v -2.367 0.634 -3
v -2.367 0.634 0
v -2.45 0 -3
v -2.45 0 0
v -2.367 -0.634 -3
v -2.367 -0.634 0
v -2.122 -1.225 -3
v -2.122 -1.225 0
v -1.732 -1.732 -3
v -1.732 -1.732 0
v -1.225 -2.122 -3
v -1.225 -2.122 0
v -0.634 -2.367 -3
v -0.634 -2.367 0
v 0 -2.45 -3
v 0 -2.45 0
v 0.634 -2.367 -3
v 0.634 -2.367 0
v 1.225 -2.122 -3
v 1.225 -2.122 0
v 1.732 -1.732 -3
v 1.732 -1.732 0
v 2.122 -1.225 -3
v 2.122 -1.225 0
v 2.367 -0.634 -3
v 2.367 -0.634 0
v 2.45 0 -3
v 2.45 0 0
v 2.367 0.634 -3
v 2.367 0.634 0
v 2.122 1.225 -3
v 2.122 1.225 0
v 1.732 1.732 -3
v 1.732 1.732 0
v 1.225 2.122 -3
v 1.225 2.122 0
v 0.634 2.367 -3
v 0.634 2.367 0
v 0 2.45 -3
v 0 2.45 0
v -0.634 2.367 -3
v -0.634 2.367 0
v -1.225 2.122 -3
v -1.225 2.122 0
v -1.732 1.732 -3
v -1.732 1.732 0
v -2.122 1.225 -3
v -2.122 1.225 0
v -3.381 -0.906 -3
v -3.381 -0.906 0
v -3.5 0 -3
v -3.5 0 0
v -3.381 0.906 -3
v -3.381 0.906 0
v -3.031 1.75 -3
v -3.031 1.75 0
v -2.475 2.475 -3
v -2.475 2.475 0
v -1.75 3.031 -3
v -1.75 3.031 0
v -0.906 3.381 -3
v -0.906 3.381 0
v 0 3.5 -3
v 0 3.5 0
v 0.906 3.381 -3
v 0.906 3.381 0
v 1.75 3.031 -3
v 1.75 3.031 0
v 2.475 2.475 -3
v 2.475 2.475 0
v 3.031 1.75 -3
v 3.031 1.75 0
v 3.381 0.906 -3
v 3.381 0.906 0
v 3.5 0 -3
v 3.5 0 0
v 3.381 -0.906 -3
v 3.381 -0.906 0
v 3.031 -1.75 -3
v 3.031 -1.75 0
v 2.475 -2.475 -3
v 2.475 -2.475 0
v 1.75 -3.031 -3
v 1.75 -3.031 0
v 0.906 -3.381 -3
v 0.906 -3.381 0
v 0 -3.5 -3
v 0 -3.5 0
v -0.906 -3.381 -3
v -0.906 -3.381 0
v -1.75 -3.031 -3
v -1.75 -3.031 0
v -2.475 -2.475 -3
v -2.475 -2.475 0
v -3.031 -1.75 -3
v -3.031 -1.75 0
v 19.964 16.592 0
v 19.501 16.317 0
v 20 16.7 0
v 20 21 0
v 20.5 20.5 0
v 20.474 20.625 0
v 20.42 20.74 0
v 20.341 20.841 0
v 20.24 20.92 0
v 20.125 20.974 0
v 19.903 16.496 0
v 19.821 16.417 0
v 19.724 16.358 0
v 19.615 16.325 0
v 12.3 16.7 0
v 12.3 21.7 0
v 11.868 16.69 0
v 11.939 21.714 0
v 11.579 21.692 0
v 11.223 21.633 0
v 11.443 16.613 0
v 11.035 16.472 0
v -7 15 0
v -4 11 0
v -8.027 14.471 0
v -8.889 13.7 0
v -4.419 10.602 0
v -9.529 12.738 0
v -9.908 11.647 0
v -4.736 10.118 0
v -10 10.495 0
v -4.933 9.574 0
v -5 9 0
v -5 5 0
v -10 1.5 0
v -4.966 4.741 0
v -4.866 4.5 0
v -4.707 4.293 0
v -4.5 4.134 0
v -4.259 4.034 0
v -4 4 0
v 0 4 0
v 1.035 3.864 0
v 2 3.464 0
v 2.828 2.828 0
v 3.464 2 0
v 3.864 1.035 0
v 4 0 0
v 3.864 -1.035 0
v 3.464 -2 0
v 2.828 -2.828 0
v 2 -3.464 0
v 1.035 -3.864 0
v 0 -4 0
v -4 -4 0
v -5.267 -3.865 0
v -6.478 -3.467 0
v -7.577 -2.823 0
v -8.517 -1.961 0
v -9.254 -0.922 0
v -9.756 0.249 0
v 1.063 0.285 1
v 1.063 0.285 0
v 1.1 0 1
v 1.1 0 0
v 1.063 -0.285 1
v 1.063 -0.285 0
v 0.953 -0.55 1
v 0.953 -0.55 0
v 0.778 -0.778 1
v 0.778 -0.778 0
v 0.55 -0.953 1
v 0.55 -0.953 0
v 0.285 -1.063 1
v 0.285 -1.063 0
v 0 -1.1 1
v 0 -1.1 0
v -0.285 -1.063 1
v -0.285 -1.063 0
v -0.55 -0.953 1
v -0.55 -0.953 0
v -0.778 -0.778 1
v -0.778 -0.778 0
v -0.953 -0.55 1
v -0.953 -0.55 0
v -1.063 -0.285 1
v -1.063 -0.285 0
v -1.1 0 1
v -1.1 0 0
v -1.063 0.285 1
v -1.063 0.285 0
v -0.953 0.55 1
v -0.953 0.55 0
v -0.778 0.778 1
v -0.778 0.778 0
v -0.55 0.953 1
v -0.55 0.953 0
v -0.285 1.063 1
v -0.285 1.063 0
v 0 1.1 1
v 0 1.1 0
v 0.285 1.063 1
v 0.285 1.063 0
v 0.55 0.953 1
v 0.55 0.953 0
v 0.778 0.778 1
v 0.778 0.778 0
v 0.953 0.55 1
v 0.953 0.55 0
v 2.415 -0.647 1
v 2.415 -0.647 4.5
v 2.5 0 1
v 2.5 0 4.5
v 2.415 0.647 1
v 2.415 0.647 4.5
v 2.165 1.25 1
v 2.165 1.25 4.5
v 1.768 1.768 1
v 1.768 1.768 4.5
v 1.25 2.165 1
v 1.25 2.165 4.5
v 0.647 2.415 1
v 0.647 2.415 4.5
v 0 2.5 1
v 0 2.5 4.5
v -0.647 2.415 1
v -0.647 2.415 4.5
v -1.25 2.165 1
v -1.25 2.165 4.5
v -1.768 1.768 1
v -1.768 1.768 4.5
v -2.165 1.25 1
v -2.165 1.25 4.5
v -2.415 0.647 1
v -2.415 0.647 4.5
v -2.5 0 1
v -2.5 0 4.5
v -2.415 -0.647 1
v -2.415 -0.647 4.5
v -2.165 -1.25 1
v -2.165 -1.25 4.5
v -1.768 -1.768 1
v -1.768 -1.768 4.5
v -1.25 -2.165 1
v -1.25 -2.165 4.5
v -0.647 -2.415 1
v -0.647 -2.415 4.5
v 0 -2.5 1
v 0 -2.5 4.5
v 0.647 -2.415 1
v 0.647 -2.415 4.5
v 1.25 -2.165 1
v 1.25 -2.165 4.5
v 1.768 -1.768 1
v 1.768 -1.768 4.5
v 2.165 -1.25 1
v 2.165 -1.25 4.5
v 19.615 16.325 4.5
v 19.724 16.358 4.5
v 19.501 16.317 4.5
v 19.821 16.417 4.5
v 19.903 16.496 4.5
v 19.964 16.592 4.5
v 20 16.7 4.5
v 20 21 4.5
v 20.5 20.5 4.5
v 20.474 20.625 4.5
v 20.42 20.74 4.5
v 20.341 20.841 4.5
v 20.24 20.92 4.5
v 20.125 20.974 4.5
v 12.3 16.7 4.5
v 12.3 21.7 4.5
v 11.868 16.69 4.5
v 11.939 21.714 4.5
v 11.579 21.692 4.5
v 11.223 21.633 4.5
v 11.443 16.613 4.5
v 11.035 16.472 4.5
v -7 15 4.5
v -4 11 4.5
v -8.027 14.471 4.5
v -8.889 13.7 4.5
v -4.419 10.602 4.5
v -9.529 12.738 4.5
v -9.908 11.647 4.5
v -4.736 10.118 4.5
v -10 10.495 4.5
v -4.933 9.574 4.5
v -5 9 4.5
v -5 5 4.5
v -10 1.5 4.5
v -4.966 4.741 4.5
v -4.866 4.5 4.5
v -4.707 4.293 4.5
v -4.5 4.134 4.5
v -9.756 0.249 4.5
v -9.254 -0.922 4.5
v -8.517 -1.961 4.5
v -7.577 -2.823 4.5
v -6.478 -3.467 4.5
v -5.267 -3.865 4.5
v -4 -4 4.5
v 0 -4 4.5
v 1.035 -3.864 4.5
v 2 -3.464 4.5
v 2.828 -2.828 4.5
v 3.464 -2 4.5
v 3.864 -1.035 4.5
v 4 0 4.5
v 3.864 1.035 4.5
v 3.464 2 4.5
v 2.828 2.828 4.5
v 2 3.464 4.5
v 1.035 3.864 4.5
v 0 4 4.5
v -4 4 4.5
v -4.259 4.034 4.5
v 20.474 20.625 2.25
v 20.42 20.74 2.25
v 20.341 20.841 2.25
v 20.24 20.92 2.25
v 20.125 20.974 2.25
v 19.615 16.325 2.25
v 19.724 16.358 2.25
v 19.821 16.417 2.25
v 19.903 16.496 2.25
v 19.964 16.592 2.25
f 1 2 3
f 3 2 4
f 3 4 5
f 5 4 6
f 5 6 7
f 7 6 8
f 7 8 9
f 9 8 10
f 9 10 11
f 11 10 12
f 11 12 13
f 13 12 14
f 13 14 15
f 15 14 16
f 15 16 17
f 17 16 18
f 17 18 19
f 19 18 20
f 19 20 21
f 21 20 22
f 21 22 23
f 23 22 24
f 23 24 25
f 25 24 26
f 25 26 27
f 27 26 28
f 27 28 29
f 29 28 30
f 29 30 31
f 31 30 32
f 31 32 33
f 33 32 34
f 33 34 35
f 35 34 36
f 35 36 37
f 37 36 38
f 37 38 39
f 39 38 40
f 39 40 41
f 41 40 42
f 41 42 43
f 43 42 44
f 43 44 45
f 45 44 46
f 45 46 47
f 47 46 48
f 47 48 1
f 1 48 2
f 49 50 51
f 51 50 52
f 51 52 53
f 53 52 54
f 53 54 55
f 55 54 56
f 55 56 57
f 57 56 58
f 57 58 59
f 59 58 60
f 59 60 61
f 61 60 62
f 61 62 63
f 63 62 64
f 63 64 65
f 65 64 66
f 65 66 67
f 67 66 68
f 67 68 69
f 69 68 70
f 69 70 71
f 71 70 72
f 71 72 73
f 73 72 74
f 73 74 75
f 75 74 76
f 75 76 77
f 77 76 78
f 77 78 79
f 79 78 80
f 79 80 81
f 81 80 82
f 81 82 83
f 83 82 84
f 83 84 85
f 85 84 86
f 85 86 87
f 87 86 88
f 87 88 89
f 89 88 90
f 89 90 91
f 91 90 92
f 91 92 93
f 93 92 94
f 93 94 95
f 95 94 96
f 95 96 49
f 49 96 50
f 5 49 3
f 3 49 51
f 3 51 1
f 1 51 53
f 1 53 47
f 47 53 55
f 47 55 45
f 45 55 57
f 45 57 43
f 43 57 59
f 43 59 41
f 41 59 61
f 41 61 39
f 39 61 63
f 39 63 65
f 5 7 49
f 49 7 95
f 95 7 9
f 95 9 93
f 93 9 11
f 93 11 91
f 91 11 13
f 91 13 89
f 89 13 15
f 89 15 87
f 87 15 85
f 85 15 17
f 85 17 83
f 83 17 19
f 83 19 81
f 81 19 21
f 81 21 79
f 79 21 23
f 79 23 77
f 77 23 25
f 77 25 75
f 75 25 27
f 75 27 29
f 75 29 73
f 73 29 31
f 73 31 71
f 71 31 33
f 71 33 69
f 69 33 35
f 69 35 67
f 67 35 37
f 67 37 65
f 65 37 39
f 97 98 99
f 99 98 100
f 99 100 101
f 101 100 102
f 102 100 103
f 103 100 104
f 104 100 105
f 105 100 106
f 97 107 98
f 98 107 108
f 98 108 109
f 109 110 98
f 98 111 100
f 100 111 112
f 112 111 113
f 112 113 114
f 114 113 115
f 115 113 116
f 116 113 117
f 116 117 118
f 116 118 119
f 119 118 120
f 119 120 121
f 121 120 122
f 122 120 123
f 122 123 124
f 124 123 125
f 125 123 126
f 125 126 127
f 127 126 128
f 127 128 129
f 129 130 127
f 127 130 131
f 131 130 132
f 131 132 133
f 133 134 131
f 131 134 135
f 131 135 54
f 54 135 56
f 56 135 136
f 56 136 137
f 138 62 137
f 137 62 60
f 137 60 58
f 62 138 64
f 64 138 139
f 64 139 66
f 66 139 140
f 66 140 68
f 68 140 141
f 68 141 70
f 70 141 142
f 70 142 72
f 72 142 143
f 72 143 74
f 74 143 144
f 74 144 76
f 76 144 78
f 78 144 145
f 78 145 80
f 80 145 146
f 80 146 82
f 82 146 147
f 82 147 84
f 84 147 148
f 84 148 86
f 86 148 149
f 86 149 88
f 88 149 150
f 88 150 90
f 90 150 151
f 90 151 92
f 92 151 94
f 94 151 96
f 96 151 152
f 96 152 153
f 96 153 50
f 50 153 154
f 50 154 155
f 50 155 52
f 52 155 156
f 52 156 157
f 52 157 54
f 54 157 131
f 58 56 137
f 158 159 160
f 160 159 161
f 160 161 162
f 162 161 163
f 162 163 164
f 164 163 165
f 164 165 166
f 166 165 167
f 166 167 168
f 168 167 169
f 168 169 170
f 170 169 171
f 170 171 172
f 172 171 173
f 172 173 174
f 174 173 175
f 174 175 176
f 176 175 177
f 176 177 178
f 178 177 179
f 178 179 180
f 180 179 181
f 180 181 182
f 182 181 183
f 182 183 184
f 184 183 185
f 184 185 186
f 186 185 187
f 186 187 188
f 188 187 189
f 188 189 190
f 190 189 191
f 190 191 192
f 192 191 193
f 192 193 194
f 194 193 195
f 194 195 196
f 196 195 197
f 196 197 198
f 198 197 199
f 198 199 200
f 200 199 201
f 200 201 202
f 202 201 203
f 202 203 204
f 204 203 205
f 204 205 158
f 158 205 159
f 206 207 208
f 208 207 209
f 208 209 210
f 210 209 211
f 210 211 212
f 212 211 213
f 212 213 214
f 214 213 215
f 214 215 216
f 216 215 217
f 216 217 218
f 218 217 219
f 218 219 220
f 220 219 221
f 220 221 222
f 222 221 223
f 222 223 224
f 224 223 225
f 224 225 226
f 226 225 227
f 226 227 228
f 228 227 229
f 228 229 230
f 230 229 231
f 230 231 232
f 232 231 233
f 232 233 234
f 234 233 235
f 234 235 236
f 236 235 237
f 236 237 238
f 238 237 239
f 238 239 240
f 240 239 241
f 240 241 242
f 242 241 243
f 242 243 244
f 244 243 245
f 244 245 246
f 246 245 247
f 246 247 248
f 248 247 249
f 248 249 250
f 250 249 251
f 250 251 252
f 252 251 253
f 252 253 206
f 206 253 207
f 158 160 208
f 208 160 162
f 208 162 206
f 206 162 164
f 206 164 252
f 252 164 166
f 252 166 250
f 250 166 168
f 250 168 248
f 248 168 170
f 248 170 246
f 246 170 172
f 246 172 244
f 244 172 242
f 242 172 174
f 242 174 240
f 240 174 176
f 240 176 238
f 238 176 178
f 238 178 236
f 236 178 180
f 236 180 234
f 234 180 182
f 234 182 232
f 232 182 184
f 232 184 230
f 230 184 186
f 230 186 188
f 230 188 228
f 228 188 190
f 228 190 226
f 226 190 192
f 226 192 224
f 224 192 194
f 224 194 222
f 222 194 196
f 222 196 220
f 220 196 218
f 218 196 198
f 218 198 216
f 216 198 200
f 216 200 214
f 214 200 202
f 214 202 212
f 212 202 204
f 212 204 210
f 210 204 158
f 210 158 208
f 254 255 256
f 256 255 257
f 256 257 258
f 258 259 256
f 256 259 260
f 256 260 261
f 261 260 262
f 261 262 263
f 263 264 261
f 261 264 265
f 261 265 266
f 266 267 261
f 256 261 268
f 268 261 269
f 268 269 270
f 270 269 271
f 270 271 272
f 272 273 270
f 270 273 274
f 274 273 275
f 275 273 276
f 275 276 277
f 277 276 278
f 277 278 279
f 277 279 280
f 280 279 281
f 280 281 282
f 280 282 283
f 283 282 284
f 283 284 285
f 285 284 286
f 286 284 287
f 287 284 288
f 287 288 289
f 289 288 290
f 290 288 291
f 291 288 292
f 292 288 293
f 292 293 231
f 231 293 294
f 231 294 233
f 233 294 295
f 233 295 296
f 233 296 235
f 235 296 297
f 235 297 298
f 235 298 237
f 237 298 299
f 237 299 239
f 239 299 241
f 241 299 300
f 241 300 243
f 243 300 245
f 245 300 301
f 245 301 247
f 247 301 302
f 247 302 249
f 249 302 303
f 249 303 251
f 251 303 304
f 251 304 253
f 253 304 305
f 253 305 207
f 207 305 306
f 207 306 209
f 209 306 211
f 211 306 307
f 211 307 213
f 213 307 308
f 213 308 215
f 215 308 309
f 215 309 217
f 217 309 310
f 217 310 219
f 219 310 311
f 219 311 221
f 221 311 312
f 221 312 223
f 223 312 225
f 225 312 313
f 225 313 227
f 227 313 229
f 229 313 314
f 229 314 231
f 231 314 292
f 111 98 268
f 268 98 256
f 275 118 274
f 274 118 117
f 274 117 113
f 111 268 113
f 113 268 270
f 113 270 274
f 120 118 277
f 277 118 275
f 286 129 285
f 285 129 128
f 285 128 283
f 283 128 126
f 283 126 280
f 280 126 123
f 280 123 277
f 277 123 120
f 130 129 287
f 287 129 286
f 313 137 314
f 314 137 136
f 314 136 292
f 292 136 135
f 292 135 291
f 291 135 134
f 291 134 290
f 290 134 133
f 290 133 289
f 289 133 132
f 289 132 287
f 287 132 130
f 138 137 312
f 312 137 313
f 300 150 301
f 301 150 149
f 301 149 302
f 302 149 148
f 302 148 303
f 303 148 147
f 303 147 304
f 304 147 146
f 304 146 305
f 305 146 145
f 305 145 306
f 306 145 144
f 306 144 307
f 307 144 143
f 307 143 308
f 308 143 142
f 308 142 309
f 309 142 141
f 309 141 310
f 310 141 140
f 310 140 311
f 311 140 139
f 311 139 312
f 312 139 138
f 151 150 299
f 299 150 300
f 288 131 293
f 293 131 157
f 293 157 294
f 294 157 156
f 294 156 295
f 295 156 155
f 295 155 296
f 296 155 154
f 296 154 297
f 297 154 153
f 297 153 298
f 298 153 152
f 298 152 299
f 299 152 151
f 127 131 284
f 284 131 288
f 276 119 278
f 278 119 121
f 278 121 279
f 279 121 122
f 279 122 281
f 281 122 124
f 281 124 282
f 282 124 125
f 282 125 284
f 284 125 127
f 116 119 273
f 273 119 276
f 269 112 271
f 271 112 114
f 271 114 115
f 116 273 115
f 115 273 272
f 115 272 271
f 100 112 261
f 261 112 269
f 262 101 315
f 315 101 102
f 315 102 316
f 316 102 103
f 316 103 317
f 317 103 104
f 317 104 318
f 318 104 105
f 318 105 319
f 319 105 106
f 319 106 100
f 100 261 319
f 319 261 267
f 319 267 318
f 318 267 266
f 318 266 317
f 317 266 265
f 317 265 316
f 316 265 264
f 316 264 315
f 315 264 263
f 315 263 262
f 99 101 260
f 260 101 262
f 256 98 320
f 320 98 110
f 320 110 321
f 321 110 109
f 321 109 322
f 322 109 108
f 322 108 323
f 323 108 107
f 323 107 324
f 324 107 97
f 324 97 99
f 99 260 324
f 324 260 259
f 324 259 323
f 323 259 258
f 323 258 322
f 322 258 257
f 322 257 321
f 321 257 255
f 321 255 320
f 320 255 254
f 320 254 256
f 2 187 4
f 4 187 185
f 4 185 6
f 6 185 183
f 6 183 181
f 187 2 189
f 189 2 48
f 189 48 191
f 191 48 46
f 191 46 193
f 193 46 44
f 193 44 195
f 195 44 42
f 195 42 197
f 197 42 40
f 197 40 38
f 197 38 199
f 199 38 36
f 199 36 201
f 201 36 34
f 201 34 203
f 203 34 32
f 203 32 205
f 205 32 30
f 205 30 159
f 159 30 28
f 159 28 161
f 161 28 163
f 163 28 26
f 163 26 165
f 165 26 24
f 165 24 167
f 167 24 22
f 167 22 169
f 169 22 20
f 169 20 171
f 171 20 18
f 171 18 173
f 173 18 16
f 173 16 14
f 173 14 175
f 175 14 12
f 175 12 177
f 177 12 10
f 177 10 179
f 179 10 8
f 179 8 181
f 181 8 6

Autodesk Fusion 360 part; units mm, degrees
sketch "Sketch1" plane through (0, 0, 0) normal (0, 0, 1) x (1, 0, 0)
  circle A0 centre (0, 0) radius 2.45
  circle A1 centre (0, 0) radius 3.5
  circle A2 centre (0, 0) radius 4
  line L0 (0, 4) -> (-4, 4)
  arc A3 (-5, 5) -> (-4, 4) centre (-4, 5) ccw
  line L1 (-5, 5) -> (-5, 9)
  line L2 (-4, 11) -> (11.0351, 16.4723)
  line L3 (-4, 11) -> (12, 11) construction
  line L4 (0, -4) -> (-4, -4)
  line L5 (-10, 1.5) -> (-10, 10.4947)
  line L6 (-7, 15) -> (11.2229, 21.6326)
  arc A4 (-10, 1.5) -> (-4, -4) centre (-4, 2.0227) ccw
  arc A5 (-4, 11) -> (-5, 9) centre (-2.5, 9) ccw
  arc A6 (-7, 15) -> (-10, 10.4947) centre (-5.438, 10.7084) ccw
  line L7 (12.3, 16.7) -> (19.5014, 16.3173)
  line L8 (12.3, 21.7) -> (20, 21)
  line L9 (20, 16.7) -> (20.5, 20.5)
  arc A7 (20.5, 20.5) -> (20, 21) centre (19.95, 20.45) ccw
  arc A8 (19.5014, 16.3173) -> (20, 16.7) centre (19.527, 16.8001) ccw
  arc A9 (12.3, 21.7) -> (11.2229, 21.6326) centre (11.9798, 18.1776) ccw
  arc A10 (12.3, 16.7) -> (11.0351, 16.4723) centre (12.1512, 13.8992) ccw
  dimension "d1" = 4.9
  dimension "d2" = 7
  dimension "d3" = 8
  dimension "d4" = 4
  dimension "d6" = 20
  dimension "d7" = 16
sketch "Sketch2" plane through (0, 0, 4.5) normal (0, 0, 1) x (-1, 0, 0)
  line L0 (10, -10.4947) -> (10, -1.5)
  line L1 (4, 4) -> (0, 4)
  arc A0 (0, 4) -> (0, -4) centre (0, 0) ccw
  line L2 (0, -4) -> (4, -4)
  arc A1 (5, -5) -> (4, -4) centre (4, -5) ccw
  line L3 (5, -5) -> (5, -9)
  line L4 (4, -11) -> (-11.0351, -16.4723)
  line L5 (-11.2229, -21.6326) -> (7, -15)
  circle A2 centre (0, 0) radius 2.5
  circle A3 centre (0, 0) radius 1.1
  arc A4 (4, -11) -> (5, -9) centre (2.5, -9) ccw
  arc A5 (-12.3, -16.7) -> (-11.0351, -16.4723) centre (-12.1512, -13.8992) ccw
  line L6 (-12.3, -16.7) -> (-19.5014, -16.3173)
  arc A6 (-19.5014, -16.3173) -> (-20, -16.7) centre (-19.527, -16.8001) ccw
  line L7 (-20, -16.7) -> (-20.5, -20.5)
  arc A7 (-20.5, -20.5) -> (-20, -21) centre (-19.95, -20.45) ccw
  line L8 (-20, -21) -> (-12.3, -21.7)
  arc A8 (-12.3, -21.7) -> (-11.2229, -21.6326) centre (-11.9798, -18.1776) ccw
  arc A9 (7, -15) -> (10, -10.4947) centre (5.438, -10.7084) ccw
  arc A10 (10, -1.5) -> (4, 4) centre (4, -2.0227) ccw
  dimension "d14" = 5
  dimension "d15" = 2.2
extrude "Extrude5" add sketch "Sketch1" along normal blind 4.5 contours A0 | A1 | A2 | A2 L0 A3 L1 L2 L4 L5 L6 A4 A5 A6 L7 L8 L9 A7 A8 A9 A10
extrude "Extrude6" cut sketch "Sketch2" against normal blind 3.5 contours A2
extrude "Extrude7" cut sketch "Sketch2" against normal blind 5 contours A3
extrude "Extrude8" add sketch "Sketch1" against normal blind 3 contours A1
